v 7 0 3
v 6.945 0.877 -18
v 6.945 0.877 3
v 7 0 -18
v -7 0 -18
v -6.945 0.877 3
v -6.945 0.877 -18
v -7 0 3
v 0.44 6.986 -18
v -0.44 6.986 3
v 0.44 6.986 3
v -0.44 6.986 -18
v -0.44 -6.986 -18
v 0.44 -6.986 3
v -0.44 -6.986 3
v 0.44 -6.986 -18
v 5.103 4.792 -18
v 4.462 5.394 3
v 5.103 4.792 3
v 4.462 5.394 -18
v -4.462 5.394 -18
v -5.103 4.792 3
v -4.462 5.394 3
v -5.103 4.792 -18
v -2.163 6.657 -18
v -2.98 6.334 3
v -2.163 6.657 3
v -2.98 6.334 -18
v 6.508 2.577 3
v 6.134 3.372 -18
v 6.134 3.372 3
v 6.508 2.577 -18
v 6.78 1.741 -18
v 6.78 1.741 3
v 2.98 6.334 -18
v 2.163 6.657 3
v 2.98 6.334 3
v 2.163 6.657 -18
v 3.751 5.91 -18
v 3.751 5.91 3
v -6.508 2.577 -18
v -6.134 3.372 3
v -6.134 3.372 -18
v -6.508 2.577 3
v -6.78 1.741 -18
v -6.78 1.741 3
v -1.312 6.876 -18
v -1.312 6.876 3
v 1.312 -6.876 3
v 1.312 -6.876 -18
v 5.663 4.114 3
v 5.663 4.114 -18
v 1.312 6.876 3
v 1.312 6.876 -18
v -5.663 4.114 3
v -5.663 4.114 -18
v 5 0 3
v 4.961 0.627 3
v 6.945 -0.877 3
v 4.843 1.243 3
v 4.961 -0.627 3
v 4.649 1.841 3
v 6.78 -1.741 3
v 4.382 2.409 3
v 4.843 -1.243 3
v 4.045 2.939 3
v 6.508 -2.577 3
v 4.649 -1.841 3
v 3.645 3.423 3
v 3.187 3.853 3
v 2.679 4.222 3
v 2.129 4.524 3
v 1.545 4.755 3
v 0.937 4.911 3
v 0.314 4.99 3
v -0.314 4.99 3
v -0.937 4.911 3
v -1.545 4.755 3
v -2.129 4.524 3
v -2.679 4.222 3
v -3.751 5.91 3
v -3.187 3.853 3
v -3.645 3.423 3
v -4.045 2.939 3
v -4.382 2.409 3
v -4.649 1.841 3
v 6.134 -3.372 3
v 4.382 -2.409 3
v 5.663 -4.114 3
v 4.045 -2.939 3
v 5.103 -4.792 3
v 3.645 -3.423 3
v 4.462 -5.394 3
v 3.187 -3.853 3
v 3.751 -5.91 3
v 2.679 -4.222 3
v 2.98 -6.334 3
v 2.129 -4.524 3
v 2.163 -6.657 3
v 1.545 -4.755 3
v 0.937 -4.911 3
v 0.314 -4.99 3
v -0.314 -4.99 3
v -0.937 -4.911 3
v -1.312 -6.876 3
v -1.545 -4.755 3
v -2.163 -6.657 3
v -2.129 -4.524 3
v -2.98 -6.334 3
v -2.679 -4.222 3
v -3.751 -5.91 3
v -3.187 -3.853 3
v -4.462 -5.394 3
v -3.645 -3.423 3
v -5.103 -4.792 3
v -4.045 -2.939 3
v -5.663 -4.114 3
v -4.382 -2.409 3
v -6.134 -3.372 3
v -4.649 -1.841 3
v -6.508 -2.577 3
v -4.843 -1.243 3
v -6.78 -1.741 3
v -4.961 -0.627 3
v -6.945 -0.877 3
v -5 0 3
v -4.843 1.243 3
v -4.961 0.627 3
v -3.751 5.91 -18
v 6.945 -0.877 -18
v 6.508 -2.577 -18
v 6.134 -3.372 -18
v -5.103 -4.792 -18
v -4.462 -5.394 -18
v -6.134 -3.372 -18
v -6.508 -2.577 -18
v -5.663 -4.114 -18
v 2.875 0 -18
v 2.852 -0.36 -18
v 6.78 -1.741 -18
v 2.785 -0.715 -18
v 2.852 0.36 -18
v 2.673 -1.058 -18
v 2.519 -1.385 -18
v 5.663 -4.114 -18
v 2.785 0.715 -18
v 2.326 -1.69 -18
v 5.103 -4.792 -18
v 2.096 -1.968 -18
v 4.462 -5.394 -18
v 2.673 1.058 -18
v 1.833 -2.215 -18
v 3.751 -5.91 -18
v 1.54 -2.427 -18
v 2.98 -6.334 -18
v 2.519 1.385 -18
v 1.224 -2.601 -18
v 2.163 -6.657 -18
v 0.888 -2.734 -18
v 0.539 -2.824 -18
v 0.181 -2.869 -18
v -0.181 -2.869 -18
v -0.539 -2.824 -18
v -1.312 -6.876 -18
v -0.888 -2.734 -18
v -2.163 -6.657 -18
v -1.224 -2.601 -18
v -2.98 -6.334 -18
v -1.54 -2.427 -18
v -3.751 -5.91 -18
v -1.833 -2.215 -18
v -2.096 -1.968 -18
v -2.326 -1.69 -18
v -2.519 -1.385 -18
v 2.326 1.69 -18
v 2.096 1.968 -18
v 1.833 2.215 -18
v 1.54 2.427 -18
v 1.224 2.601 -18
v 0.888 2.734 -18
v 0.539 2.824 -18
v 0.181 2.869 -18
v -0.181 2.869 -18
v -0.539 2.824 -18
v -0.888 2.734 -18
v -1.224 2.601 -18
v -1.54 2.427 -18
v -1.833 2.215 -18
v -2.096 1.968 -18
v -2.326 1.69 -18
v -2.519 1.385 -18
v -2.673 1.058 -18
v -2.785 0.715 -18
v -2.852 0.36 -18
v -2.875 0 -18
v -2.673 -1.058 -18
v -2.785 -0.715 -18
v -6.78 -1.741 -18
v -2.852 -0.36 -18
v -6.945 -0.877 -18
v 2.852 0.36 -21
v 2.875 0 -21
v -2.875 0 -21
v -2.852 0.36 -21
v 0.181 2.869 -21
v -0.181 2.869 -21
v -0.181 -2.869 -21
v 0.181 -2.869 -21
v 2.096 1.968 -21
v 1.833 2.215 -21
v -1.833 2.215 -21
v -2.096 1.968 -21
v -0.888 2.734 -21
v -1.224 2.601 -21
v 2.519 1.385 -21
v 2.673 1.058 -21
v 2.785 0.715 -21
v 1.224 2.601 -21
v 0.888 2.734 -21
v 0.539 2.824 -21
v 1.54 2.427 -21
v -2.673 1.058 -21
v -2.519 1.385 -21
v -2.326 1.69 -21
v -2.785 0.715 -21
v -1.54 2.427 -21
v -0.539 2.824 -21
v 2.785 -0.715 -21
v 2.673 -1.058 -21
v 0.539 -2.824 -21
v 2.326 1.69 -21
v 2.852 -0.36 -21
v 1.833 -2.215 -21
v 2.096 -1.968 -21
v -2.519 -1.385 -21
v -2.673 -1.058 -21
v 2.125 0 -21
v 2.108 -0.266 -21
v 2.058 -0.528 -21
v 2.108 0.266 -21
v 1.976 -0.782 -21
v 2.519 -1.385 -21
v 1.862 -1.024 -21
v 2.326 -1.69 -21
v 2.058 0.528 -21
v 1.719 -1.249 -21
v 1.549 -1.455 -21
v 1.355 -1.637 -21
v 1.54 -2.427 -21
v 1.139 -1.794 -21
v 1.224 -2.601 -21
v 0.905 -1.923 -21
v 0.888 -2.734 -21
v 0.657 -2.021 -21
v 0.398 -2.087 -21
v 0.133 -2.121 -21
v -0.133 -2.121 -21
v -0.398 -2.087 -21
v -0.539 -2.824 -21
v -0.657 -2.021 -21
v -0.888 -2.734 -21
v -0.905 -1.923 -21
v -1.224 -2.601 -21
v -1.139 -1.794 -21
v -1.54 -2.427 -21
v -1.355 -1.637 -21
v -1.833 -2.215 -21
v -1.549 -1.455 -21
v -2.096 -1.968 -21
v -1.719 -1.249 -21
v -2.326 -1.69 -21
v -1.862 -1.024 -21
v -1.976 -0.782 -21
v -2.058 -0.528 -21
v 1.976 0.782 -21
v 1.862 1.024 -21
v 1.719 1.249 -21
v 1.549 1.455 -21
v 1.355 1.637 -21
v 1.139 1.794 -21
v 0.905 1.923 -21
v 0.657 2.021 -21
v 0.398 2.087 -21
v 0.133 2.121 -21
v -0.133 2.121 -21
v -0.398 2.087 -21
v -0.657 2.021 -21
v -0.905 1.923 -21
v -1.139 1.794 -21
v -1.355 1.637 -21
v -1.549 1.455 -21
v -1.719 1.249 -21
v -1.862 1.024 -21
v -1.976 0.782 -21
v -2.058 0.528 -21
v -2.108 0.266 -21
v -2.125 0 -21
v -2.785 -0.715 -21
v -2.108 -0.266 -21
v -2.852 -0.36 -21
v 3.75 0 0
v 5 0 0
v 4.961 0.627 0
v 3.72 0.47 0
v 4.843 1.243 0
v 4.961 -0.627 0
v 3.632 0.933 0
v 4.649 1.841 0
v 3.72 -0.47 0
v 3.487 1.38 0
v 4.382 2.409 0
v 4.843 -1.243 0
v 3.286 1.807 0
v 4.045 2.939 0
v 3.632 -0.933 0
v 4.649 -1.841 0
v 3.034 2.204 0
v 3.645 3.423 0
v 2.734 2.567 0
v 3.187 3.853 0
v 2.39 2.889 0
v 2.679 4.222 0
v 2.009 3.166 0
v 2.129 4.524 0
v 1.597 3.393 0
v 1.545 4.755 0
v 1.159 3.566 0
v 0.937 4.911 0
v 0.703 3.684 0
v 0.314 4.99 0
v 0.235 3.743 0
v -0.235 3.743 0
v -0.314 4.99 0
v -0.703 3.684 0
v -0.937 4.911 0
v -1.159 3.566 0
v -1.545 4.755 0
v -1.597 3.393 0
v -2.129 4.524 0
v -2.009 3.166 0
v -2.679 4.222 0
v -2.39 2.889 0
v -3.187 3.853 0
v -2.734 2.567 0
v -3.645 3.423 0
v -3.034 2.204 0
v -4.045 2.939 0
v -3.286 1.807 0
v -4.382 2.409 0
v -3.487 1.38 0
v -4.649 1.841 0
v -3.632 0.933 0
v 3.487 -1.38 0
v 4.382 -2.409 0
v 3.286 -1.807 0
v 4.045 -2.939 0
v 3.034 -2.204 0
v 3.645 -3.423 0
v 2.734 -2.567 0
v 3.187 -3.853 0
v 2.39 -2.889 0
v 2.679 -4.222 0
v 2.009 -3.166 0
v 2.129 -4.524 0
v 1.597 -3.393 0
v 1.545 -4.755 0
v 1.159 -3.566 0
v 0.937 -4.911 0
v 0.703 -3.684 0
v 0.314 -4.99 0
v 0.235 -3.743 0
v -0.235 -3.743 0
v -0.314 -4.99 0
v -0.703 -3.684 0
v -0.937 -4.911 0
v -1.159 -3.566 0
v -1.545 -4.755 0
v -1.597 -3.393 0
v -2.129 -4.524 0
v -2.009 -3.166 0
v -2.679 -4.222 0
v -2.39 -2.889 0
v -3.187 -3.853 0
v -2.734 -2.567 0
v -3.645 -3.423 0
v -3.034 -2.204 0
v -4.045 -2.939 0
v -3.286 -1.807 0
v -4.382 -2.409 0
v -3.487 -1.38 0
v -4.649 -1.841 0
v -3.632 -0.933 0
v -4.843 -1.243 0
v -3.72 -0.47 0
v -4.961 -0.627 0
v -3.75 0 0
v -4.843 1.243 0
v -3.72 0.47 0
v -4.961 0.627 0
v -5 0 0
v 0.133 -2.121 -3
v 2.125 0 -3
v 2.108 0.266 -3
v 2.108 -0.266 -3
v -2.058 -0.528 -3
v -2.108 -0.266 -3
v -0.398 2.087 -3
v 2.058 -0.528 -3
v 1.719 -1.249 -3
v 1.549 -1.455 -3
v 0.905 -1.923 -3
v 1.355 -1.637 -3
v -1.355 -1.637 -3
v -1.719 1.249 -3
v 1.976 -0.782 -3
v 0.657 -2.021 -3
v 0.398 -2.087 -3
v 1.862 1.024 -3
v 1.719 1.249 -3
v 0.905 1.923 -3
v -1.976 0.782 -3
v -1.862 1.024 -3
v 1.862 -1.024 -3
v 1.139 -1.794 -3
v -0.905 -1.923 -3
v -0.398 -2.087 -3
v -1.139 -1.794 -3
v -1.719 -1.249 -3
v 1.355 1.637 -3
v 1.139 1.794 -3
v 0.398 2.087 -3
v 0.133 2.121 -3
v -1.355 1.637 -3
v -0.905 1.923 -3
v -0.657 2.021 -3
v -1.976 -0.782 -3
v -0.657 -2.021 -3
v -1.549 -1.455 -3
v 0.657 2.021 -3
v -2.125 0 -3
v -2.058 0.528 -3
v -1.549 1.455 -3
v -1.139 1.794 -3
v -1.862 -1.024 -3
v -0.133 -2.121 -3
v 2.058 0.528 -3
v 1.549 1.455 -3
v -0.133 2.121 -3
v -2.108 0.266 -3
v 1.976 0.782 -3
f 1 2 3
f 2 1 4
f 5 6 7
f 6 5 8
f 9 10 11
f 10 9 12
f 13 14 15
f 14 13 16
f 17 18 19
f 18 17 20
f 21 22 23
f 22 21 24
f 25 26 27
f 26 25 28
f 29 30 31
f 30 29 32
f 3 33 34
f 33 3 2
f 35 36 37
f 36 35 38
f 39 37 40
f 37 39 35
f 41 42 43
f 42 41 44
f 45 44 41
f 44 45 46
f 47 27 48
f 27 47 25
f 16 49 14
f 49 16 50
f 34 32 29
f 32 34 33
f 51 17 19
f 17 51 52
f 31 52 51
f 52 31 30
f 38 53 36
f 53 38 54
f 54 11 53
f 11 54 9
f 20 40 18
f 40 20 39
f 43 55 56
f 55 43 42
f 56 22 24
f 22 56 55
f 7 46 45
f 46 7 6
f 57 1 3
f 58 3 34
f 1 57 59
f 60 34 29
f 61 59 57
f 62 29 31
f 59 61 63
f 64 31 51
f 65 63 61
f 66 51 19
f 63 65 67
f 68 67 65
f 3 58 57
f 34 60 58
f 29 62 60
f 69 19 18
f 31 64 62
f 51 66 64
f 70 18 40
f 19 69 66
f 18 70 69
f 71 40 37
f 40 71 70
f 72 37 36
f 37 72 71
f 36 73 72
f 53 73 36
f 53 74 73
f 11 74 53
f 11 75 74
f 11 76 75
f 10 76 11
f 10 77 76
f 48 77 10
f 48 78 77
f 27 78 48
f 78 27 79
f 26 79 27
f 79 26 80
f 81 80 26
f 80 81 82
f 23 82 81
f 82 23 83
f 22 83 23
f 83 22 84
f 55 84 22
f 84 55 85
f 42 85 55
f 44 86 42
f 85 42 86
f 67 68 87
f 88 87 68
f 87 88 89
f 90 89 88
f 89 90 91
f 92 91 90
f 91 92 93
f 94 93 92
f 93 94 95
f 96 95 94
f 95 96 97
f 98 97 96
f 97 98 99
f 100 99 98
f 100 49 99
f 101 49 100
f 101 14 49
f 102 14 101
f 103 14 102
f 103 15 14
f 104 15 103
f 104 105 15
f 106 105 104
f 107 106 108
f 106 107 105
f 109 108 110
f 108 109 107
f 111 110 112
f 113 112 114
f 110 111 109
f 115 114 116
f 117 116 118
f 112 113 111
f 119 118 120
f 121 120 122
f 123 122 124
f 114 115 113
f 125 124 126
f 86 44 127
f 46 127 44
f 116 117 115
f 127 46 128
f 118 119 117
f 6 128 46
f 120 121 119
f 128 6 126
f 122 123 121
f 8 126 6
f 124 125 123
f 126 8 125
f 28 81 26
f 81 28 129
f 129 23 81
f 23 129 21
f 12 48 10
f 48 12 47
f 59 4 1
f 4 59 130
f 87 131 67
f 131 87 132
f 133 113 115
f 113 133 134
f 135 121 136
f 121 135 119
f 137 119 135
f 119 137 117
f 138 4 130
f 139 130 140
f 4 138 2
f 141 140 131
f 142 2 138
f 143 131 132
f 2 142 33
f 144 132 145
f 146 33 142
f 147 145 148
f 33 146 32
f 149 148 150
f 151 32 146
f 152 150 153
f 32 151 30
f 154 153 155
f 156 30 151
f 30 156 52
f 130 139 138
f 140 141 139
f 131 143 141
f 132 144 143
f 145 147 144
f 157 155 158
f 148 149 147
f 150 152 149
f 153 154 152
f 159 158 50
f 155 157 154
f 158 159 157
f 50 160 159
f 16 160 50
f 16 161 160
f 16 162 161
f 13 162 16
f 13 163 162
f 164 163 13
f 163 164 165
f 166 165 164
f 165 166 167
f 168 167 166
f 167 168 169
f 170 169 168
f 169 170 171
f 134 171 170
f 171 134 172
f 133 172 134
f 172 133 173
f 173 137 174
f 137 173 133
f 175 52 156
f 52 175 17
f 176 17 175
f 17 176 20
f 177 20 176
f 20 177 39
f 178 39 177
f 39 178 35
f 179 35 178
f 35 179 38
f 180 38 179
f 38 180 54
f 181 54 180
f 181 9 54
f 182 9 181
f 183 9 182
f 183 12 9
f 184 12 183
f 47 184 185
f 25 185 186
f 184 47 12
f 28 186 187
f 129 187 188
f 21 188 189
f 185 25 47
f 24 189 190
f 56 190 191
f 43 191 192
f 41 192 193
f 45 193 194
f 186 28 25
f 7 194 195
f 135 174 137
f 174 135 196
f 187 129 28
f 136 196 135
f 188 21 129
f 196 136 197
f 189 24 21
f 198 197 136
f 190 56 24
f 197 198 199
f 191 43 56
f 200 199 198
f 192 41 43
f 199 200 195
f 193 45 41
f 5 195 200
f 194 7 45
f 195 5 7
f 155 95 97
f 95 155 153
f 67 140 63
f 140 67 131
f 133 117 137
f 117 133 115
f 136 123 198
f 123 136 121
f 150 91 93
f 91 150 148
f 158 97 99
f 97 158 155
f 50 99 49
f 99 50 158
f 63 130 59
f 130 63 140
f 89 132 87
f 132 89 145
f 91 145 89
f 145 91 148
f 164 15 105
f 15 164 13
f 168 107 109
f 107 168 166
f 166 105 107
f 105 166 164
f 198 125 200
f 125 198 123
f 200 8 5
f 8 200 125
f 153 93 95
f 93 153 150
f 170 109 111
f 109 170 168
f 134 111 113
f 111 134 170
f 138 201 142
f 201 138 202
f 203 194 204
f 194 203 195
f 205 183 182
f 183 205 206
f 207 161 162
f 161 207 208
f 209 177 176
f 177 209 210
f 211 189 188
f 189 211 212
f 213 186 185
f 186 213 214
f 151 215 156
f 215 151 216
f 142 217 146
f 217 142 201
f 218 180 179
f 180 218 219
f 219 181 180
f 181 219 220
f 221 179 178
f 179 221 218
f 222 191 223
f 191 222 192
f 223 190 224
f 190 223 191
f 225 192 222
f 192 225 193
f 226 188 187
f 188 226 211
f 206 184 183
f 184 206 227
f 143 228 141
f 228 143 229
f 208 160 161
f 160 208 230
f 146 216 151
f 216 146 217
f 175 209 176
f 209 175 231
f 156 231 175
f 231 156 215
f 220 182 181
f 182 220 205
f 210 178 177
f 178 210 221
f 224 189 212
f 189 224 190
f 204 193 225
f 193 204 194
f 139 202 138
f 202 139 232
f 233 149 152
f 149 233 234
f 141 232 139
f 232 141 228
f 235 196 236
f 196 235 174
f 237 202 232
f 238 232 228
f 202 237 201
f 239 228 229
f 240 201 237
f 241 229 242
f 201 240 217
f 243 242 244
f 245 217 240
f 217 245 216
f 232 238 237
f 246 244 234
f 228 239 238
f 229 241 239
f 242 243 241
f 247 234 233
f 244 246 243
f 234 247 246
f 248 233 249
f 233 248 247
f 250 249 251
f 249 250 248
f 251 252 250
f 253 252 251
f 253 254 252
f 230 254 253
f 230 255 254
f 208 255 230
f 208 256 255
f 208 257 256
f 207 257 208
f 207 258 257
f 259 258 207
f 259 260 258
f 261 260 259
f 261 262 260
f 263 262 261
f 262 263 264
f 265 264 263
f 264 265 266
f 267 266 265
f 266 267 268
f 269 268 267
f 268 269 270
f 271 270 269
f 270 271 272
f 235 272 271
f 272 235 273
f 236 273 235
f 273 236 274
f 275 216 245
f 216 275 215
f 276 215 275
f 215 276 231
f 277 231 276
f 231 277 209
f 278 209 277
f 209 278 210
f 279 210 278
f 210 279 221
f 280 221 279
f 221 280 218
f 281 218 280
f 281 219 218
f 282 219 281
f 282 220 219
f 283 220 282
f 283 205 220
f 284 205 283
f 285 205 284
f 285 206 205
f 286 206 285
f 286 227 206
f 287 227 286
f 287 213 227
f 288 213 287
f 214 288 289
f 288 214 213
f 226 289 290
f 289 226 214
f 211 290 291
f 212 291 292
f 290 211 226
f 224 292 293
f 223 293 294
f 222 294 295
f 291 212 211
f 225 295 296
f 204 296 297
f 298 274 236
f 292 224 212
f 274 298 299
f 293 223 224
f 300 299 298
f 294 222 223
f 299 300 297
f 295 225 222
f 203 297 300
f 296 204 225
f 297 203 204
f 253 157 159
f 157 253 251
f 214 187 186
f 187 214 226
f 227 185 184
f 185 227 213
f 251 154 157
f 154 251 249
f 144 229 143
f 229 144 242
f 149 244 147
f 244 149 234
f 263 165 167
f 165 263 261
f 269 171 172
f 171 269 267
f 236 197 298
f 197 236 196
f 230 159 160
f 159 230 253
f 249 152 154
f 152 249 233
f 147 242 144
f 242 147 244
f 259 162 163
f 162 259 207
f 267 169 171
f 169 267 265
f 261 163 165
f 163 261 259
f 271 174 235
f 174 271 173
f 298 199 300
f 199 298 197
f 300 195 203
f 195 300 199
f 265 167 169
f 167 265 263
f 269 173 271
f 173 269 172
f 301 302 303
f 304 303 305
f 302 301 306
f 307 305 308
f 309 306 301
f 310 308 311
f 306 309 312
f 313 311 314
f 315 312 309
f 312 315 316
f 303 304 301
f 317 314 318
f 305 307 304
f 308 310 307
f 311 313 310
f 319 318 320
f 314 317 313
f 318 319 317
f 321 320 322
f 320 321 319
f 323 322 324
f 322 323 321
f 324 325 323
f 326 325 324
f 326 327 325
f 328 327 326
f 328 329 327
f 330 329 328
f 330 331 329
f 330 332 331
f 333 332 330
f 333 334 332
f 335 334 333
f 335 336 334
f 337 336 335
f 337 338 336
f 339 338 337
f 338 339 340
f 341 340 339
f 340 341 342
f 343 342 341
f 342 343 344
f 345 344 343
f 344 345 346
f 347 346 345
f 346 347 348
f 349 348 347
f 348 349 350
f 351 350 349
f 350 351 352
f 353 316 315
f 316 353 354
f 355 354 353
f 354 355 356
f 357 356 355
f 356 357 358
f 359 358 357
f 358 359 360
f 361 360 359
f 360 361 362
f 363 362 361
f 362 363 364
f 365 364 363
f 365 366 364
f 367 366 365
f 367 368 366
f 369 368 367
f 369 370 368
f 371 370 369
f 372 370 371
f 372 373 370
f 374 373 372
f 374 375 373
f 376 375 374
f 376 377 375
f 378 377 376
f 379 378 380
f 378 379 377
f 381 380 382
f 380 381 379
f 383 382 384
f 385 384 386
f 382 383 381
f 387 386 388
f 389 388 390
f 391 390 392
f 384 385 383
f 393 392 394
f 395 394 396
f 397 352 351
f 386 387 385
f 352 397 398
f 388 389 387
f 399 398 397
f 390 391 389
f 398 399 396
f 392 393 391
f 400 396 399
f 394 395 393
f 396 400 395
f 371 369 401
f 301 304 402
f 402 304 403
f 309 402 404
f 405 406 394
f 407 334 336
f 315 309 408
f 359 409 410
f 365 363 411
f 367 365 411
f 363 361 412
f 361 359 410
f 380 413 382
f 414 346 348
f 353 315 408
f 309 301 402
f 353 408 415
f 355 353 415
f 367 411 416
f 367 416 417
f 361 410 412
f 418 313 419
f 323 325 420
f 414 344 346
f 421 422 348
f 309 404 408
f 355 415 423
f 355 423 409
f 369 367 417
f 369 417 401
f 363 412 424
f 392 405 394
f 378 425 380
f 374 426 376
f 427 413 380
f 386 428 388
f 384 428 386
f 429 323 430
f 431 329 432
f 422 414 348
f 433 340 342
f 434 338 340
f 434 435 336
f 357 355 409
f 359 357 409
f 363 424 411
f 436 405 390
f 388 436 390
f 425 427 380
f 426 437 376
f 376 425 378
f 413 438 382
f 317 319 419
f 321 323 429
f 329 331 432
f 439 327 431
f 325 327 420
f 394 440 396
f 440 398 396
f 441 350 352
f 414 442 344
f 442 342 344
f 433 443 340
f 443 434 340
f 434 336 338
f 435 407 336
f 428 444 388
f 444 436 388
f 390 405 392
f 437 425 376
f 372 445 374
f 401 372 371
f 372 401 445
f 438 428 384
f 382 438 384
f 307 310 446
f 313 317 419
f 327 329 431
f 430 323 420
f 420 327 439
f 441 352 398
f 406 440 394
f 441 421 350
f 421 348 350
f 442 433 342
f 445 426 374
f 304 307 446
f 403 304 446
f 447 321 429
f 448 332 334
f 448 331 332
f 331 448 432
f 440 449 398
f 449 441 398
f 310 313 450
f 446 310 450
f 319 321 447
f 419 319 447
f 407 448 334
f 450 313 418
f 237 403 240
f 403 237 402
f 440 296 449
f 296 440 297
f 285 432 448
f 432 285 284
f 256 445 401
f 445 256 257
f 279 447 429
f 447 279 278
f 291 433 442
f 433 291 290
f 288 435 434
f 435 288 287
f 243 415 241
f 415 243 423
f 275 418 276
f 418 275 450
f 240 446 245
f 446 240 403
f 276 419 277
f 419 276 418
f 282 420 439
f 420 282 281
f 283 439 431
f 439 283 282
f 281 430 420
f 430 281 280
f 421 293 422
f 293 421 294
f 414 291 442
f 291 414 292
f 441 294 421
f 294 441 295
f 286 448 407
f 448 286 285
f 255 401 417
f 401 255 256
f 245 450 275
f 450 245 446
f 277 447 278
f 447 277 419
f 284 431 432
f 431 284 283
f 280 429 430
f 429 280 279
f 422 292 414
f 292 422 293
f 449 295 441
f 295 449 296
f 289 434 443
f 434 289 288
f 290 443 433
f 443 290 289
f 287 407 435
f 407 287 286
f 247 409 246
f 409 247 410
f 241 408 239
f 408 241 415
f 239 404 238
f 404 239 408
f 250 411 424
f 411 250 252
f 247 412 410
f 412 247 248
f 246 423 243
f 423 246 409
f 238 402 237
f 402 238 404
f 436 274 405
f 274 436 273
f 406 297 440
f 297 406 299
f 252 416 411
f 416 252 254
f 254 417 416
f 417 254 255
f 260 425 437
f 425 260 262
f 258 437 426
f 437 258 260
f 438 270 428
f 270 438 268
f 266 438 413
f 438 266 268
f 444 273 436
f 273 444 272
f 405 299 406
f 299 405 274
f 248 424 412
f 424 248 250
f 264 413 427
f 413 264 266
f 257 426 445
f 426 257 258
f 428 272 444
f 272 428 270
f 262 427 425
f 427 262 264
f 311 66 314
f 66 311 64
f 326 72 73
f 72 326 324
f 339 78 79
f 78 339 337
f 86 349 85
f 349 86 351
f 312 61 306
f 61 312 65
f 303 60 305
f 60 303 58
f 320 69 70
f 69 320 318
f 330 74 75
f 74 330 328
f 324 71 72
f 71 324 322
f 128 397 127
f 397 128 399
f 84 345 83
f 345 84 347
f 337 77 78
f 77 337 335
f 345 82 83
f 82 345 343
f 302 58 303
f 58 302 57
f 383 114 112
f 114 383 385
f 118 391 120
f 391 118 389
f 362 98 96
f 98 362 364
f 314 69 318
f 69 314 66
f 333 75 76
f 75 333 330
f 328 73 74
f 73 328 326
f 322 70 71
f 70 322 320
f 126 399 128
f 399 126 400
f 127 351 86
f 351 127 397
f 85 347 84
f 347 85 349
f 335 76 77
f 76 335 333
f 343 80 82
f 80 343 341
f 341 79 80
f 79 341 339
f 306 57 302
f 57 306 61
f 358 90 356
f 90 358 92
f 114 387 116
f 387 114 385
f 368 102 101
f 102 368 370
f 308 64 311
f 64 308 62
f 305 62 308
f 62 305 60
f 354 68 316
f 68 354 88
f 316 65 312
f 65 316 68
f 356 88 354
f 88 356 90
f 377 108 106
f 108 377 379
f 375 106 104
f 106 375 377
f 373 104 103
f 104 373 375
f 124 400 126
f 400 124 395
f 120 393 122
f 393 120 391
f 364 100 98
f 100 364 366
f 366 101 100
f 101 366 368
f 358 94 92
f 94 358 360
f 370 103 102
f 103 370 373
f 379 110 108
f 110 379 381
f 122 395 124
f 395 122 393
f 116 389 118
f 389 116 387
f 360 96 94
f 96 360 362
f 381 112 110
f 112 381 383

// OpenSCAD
$fn = 50;


difference() {
	union() {
		translate(v = [0, 0, -18.0000000000]) {
			cylinder(h = 21, r = 7.0000000000);
		}
		#translate(v = [0, 0, -21.0000000000]) {
			cylinder(h = 21, r = 2.8750000000);
		}
	}
	union() {
		translate(v = [0, 0, 0]) {
			rotate(a = [0, 0, 0]) {
				difference() {
					union() {
						translate(v = [0, 0, -21.0000000000]) {
							cylinder(h = 21, r = 2.0000000000);
						}
						translate(v = [0, 0, -3]) {
							cylinder(h = 3, r1 = 2.1250000000, r2 = 3.7500000000);
						}
						translate(v = [0, 0, -21.0000000000]) {
							cylinder(h = 21, r = 2.1250000000);
						}
						translate(v = [0, 0, -21.0000000000]) {
							cylinder(h = 21, r = 2.0000000000);
						}
					}
					union();
				}
			}
		}
		#cylinder(h = 3, r = 5.0000000000);
	}
}
